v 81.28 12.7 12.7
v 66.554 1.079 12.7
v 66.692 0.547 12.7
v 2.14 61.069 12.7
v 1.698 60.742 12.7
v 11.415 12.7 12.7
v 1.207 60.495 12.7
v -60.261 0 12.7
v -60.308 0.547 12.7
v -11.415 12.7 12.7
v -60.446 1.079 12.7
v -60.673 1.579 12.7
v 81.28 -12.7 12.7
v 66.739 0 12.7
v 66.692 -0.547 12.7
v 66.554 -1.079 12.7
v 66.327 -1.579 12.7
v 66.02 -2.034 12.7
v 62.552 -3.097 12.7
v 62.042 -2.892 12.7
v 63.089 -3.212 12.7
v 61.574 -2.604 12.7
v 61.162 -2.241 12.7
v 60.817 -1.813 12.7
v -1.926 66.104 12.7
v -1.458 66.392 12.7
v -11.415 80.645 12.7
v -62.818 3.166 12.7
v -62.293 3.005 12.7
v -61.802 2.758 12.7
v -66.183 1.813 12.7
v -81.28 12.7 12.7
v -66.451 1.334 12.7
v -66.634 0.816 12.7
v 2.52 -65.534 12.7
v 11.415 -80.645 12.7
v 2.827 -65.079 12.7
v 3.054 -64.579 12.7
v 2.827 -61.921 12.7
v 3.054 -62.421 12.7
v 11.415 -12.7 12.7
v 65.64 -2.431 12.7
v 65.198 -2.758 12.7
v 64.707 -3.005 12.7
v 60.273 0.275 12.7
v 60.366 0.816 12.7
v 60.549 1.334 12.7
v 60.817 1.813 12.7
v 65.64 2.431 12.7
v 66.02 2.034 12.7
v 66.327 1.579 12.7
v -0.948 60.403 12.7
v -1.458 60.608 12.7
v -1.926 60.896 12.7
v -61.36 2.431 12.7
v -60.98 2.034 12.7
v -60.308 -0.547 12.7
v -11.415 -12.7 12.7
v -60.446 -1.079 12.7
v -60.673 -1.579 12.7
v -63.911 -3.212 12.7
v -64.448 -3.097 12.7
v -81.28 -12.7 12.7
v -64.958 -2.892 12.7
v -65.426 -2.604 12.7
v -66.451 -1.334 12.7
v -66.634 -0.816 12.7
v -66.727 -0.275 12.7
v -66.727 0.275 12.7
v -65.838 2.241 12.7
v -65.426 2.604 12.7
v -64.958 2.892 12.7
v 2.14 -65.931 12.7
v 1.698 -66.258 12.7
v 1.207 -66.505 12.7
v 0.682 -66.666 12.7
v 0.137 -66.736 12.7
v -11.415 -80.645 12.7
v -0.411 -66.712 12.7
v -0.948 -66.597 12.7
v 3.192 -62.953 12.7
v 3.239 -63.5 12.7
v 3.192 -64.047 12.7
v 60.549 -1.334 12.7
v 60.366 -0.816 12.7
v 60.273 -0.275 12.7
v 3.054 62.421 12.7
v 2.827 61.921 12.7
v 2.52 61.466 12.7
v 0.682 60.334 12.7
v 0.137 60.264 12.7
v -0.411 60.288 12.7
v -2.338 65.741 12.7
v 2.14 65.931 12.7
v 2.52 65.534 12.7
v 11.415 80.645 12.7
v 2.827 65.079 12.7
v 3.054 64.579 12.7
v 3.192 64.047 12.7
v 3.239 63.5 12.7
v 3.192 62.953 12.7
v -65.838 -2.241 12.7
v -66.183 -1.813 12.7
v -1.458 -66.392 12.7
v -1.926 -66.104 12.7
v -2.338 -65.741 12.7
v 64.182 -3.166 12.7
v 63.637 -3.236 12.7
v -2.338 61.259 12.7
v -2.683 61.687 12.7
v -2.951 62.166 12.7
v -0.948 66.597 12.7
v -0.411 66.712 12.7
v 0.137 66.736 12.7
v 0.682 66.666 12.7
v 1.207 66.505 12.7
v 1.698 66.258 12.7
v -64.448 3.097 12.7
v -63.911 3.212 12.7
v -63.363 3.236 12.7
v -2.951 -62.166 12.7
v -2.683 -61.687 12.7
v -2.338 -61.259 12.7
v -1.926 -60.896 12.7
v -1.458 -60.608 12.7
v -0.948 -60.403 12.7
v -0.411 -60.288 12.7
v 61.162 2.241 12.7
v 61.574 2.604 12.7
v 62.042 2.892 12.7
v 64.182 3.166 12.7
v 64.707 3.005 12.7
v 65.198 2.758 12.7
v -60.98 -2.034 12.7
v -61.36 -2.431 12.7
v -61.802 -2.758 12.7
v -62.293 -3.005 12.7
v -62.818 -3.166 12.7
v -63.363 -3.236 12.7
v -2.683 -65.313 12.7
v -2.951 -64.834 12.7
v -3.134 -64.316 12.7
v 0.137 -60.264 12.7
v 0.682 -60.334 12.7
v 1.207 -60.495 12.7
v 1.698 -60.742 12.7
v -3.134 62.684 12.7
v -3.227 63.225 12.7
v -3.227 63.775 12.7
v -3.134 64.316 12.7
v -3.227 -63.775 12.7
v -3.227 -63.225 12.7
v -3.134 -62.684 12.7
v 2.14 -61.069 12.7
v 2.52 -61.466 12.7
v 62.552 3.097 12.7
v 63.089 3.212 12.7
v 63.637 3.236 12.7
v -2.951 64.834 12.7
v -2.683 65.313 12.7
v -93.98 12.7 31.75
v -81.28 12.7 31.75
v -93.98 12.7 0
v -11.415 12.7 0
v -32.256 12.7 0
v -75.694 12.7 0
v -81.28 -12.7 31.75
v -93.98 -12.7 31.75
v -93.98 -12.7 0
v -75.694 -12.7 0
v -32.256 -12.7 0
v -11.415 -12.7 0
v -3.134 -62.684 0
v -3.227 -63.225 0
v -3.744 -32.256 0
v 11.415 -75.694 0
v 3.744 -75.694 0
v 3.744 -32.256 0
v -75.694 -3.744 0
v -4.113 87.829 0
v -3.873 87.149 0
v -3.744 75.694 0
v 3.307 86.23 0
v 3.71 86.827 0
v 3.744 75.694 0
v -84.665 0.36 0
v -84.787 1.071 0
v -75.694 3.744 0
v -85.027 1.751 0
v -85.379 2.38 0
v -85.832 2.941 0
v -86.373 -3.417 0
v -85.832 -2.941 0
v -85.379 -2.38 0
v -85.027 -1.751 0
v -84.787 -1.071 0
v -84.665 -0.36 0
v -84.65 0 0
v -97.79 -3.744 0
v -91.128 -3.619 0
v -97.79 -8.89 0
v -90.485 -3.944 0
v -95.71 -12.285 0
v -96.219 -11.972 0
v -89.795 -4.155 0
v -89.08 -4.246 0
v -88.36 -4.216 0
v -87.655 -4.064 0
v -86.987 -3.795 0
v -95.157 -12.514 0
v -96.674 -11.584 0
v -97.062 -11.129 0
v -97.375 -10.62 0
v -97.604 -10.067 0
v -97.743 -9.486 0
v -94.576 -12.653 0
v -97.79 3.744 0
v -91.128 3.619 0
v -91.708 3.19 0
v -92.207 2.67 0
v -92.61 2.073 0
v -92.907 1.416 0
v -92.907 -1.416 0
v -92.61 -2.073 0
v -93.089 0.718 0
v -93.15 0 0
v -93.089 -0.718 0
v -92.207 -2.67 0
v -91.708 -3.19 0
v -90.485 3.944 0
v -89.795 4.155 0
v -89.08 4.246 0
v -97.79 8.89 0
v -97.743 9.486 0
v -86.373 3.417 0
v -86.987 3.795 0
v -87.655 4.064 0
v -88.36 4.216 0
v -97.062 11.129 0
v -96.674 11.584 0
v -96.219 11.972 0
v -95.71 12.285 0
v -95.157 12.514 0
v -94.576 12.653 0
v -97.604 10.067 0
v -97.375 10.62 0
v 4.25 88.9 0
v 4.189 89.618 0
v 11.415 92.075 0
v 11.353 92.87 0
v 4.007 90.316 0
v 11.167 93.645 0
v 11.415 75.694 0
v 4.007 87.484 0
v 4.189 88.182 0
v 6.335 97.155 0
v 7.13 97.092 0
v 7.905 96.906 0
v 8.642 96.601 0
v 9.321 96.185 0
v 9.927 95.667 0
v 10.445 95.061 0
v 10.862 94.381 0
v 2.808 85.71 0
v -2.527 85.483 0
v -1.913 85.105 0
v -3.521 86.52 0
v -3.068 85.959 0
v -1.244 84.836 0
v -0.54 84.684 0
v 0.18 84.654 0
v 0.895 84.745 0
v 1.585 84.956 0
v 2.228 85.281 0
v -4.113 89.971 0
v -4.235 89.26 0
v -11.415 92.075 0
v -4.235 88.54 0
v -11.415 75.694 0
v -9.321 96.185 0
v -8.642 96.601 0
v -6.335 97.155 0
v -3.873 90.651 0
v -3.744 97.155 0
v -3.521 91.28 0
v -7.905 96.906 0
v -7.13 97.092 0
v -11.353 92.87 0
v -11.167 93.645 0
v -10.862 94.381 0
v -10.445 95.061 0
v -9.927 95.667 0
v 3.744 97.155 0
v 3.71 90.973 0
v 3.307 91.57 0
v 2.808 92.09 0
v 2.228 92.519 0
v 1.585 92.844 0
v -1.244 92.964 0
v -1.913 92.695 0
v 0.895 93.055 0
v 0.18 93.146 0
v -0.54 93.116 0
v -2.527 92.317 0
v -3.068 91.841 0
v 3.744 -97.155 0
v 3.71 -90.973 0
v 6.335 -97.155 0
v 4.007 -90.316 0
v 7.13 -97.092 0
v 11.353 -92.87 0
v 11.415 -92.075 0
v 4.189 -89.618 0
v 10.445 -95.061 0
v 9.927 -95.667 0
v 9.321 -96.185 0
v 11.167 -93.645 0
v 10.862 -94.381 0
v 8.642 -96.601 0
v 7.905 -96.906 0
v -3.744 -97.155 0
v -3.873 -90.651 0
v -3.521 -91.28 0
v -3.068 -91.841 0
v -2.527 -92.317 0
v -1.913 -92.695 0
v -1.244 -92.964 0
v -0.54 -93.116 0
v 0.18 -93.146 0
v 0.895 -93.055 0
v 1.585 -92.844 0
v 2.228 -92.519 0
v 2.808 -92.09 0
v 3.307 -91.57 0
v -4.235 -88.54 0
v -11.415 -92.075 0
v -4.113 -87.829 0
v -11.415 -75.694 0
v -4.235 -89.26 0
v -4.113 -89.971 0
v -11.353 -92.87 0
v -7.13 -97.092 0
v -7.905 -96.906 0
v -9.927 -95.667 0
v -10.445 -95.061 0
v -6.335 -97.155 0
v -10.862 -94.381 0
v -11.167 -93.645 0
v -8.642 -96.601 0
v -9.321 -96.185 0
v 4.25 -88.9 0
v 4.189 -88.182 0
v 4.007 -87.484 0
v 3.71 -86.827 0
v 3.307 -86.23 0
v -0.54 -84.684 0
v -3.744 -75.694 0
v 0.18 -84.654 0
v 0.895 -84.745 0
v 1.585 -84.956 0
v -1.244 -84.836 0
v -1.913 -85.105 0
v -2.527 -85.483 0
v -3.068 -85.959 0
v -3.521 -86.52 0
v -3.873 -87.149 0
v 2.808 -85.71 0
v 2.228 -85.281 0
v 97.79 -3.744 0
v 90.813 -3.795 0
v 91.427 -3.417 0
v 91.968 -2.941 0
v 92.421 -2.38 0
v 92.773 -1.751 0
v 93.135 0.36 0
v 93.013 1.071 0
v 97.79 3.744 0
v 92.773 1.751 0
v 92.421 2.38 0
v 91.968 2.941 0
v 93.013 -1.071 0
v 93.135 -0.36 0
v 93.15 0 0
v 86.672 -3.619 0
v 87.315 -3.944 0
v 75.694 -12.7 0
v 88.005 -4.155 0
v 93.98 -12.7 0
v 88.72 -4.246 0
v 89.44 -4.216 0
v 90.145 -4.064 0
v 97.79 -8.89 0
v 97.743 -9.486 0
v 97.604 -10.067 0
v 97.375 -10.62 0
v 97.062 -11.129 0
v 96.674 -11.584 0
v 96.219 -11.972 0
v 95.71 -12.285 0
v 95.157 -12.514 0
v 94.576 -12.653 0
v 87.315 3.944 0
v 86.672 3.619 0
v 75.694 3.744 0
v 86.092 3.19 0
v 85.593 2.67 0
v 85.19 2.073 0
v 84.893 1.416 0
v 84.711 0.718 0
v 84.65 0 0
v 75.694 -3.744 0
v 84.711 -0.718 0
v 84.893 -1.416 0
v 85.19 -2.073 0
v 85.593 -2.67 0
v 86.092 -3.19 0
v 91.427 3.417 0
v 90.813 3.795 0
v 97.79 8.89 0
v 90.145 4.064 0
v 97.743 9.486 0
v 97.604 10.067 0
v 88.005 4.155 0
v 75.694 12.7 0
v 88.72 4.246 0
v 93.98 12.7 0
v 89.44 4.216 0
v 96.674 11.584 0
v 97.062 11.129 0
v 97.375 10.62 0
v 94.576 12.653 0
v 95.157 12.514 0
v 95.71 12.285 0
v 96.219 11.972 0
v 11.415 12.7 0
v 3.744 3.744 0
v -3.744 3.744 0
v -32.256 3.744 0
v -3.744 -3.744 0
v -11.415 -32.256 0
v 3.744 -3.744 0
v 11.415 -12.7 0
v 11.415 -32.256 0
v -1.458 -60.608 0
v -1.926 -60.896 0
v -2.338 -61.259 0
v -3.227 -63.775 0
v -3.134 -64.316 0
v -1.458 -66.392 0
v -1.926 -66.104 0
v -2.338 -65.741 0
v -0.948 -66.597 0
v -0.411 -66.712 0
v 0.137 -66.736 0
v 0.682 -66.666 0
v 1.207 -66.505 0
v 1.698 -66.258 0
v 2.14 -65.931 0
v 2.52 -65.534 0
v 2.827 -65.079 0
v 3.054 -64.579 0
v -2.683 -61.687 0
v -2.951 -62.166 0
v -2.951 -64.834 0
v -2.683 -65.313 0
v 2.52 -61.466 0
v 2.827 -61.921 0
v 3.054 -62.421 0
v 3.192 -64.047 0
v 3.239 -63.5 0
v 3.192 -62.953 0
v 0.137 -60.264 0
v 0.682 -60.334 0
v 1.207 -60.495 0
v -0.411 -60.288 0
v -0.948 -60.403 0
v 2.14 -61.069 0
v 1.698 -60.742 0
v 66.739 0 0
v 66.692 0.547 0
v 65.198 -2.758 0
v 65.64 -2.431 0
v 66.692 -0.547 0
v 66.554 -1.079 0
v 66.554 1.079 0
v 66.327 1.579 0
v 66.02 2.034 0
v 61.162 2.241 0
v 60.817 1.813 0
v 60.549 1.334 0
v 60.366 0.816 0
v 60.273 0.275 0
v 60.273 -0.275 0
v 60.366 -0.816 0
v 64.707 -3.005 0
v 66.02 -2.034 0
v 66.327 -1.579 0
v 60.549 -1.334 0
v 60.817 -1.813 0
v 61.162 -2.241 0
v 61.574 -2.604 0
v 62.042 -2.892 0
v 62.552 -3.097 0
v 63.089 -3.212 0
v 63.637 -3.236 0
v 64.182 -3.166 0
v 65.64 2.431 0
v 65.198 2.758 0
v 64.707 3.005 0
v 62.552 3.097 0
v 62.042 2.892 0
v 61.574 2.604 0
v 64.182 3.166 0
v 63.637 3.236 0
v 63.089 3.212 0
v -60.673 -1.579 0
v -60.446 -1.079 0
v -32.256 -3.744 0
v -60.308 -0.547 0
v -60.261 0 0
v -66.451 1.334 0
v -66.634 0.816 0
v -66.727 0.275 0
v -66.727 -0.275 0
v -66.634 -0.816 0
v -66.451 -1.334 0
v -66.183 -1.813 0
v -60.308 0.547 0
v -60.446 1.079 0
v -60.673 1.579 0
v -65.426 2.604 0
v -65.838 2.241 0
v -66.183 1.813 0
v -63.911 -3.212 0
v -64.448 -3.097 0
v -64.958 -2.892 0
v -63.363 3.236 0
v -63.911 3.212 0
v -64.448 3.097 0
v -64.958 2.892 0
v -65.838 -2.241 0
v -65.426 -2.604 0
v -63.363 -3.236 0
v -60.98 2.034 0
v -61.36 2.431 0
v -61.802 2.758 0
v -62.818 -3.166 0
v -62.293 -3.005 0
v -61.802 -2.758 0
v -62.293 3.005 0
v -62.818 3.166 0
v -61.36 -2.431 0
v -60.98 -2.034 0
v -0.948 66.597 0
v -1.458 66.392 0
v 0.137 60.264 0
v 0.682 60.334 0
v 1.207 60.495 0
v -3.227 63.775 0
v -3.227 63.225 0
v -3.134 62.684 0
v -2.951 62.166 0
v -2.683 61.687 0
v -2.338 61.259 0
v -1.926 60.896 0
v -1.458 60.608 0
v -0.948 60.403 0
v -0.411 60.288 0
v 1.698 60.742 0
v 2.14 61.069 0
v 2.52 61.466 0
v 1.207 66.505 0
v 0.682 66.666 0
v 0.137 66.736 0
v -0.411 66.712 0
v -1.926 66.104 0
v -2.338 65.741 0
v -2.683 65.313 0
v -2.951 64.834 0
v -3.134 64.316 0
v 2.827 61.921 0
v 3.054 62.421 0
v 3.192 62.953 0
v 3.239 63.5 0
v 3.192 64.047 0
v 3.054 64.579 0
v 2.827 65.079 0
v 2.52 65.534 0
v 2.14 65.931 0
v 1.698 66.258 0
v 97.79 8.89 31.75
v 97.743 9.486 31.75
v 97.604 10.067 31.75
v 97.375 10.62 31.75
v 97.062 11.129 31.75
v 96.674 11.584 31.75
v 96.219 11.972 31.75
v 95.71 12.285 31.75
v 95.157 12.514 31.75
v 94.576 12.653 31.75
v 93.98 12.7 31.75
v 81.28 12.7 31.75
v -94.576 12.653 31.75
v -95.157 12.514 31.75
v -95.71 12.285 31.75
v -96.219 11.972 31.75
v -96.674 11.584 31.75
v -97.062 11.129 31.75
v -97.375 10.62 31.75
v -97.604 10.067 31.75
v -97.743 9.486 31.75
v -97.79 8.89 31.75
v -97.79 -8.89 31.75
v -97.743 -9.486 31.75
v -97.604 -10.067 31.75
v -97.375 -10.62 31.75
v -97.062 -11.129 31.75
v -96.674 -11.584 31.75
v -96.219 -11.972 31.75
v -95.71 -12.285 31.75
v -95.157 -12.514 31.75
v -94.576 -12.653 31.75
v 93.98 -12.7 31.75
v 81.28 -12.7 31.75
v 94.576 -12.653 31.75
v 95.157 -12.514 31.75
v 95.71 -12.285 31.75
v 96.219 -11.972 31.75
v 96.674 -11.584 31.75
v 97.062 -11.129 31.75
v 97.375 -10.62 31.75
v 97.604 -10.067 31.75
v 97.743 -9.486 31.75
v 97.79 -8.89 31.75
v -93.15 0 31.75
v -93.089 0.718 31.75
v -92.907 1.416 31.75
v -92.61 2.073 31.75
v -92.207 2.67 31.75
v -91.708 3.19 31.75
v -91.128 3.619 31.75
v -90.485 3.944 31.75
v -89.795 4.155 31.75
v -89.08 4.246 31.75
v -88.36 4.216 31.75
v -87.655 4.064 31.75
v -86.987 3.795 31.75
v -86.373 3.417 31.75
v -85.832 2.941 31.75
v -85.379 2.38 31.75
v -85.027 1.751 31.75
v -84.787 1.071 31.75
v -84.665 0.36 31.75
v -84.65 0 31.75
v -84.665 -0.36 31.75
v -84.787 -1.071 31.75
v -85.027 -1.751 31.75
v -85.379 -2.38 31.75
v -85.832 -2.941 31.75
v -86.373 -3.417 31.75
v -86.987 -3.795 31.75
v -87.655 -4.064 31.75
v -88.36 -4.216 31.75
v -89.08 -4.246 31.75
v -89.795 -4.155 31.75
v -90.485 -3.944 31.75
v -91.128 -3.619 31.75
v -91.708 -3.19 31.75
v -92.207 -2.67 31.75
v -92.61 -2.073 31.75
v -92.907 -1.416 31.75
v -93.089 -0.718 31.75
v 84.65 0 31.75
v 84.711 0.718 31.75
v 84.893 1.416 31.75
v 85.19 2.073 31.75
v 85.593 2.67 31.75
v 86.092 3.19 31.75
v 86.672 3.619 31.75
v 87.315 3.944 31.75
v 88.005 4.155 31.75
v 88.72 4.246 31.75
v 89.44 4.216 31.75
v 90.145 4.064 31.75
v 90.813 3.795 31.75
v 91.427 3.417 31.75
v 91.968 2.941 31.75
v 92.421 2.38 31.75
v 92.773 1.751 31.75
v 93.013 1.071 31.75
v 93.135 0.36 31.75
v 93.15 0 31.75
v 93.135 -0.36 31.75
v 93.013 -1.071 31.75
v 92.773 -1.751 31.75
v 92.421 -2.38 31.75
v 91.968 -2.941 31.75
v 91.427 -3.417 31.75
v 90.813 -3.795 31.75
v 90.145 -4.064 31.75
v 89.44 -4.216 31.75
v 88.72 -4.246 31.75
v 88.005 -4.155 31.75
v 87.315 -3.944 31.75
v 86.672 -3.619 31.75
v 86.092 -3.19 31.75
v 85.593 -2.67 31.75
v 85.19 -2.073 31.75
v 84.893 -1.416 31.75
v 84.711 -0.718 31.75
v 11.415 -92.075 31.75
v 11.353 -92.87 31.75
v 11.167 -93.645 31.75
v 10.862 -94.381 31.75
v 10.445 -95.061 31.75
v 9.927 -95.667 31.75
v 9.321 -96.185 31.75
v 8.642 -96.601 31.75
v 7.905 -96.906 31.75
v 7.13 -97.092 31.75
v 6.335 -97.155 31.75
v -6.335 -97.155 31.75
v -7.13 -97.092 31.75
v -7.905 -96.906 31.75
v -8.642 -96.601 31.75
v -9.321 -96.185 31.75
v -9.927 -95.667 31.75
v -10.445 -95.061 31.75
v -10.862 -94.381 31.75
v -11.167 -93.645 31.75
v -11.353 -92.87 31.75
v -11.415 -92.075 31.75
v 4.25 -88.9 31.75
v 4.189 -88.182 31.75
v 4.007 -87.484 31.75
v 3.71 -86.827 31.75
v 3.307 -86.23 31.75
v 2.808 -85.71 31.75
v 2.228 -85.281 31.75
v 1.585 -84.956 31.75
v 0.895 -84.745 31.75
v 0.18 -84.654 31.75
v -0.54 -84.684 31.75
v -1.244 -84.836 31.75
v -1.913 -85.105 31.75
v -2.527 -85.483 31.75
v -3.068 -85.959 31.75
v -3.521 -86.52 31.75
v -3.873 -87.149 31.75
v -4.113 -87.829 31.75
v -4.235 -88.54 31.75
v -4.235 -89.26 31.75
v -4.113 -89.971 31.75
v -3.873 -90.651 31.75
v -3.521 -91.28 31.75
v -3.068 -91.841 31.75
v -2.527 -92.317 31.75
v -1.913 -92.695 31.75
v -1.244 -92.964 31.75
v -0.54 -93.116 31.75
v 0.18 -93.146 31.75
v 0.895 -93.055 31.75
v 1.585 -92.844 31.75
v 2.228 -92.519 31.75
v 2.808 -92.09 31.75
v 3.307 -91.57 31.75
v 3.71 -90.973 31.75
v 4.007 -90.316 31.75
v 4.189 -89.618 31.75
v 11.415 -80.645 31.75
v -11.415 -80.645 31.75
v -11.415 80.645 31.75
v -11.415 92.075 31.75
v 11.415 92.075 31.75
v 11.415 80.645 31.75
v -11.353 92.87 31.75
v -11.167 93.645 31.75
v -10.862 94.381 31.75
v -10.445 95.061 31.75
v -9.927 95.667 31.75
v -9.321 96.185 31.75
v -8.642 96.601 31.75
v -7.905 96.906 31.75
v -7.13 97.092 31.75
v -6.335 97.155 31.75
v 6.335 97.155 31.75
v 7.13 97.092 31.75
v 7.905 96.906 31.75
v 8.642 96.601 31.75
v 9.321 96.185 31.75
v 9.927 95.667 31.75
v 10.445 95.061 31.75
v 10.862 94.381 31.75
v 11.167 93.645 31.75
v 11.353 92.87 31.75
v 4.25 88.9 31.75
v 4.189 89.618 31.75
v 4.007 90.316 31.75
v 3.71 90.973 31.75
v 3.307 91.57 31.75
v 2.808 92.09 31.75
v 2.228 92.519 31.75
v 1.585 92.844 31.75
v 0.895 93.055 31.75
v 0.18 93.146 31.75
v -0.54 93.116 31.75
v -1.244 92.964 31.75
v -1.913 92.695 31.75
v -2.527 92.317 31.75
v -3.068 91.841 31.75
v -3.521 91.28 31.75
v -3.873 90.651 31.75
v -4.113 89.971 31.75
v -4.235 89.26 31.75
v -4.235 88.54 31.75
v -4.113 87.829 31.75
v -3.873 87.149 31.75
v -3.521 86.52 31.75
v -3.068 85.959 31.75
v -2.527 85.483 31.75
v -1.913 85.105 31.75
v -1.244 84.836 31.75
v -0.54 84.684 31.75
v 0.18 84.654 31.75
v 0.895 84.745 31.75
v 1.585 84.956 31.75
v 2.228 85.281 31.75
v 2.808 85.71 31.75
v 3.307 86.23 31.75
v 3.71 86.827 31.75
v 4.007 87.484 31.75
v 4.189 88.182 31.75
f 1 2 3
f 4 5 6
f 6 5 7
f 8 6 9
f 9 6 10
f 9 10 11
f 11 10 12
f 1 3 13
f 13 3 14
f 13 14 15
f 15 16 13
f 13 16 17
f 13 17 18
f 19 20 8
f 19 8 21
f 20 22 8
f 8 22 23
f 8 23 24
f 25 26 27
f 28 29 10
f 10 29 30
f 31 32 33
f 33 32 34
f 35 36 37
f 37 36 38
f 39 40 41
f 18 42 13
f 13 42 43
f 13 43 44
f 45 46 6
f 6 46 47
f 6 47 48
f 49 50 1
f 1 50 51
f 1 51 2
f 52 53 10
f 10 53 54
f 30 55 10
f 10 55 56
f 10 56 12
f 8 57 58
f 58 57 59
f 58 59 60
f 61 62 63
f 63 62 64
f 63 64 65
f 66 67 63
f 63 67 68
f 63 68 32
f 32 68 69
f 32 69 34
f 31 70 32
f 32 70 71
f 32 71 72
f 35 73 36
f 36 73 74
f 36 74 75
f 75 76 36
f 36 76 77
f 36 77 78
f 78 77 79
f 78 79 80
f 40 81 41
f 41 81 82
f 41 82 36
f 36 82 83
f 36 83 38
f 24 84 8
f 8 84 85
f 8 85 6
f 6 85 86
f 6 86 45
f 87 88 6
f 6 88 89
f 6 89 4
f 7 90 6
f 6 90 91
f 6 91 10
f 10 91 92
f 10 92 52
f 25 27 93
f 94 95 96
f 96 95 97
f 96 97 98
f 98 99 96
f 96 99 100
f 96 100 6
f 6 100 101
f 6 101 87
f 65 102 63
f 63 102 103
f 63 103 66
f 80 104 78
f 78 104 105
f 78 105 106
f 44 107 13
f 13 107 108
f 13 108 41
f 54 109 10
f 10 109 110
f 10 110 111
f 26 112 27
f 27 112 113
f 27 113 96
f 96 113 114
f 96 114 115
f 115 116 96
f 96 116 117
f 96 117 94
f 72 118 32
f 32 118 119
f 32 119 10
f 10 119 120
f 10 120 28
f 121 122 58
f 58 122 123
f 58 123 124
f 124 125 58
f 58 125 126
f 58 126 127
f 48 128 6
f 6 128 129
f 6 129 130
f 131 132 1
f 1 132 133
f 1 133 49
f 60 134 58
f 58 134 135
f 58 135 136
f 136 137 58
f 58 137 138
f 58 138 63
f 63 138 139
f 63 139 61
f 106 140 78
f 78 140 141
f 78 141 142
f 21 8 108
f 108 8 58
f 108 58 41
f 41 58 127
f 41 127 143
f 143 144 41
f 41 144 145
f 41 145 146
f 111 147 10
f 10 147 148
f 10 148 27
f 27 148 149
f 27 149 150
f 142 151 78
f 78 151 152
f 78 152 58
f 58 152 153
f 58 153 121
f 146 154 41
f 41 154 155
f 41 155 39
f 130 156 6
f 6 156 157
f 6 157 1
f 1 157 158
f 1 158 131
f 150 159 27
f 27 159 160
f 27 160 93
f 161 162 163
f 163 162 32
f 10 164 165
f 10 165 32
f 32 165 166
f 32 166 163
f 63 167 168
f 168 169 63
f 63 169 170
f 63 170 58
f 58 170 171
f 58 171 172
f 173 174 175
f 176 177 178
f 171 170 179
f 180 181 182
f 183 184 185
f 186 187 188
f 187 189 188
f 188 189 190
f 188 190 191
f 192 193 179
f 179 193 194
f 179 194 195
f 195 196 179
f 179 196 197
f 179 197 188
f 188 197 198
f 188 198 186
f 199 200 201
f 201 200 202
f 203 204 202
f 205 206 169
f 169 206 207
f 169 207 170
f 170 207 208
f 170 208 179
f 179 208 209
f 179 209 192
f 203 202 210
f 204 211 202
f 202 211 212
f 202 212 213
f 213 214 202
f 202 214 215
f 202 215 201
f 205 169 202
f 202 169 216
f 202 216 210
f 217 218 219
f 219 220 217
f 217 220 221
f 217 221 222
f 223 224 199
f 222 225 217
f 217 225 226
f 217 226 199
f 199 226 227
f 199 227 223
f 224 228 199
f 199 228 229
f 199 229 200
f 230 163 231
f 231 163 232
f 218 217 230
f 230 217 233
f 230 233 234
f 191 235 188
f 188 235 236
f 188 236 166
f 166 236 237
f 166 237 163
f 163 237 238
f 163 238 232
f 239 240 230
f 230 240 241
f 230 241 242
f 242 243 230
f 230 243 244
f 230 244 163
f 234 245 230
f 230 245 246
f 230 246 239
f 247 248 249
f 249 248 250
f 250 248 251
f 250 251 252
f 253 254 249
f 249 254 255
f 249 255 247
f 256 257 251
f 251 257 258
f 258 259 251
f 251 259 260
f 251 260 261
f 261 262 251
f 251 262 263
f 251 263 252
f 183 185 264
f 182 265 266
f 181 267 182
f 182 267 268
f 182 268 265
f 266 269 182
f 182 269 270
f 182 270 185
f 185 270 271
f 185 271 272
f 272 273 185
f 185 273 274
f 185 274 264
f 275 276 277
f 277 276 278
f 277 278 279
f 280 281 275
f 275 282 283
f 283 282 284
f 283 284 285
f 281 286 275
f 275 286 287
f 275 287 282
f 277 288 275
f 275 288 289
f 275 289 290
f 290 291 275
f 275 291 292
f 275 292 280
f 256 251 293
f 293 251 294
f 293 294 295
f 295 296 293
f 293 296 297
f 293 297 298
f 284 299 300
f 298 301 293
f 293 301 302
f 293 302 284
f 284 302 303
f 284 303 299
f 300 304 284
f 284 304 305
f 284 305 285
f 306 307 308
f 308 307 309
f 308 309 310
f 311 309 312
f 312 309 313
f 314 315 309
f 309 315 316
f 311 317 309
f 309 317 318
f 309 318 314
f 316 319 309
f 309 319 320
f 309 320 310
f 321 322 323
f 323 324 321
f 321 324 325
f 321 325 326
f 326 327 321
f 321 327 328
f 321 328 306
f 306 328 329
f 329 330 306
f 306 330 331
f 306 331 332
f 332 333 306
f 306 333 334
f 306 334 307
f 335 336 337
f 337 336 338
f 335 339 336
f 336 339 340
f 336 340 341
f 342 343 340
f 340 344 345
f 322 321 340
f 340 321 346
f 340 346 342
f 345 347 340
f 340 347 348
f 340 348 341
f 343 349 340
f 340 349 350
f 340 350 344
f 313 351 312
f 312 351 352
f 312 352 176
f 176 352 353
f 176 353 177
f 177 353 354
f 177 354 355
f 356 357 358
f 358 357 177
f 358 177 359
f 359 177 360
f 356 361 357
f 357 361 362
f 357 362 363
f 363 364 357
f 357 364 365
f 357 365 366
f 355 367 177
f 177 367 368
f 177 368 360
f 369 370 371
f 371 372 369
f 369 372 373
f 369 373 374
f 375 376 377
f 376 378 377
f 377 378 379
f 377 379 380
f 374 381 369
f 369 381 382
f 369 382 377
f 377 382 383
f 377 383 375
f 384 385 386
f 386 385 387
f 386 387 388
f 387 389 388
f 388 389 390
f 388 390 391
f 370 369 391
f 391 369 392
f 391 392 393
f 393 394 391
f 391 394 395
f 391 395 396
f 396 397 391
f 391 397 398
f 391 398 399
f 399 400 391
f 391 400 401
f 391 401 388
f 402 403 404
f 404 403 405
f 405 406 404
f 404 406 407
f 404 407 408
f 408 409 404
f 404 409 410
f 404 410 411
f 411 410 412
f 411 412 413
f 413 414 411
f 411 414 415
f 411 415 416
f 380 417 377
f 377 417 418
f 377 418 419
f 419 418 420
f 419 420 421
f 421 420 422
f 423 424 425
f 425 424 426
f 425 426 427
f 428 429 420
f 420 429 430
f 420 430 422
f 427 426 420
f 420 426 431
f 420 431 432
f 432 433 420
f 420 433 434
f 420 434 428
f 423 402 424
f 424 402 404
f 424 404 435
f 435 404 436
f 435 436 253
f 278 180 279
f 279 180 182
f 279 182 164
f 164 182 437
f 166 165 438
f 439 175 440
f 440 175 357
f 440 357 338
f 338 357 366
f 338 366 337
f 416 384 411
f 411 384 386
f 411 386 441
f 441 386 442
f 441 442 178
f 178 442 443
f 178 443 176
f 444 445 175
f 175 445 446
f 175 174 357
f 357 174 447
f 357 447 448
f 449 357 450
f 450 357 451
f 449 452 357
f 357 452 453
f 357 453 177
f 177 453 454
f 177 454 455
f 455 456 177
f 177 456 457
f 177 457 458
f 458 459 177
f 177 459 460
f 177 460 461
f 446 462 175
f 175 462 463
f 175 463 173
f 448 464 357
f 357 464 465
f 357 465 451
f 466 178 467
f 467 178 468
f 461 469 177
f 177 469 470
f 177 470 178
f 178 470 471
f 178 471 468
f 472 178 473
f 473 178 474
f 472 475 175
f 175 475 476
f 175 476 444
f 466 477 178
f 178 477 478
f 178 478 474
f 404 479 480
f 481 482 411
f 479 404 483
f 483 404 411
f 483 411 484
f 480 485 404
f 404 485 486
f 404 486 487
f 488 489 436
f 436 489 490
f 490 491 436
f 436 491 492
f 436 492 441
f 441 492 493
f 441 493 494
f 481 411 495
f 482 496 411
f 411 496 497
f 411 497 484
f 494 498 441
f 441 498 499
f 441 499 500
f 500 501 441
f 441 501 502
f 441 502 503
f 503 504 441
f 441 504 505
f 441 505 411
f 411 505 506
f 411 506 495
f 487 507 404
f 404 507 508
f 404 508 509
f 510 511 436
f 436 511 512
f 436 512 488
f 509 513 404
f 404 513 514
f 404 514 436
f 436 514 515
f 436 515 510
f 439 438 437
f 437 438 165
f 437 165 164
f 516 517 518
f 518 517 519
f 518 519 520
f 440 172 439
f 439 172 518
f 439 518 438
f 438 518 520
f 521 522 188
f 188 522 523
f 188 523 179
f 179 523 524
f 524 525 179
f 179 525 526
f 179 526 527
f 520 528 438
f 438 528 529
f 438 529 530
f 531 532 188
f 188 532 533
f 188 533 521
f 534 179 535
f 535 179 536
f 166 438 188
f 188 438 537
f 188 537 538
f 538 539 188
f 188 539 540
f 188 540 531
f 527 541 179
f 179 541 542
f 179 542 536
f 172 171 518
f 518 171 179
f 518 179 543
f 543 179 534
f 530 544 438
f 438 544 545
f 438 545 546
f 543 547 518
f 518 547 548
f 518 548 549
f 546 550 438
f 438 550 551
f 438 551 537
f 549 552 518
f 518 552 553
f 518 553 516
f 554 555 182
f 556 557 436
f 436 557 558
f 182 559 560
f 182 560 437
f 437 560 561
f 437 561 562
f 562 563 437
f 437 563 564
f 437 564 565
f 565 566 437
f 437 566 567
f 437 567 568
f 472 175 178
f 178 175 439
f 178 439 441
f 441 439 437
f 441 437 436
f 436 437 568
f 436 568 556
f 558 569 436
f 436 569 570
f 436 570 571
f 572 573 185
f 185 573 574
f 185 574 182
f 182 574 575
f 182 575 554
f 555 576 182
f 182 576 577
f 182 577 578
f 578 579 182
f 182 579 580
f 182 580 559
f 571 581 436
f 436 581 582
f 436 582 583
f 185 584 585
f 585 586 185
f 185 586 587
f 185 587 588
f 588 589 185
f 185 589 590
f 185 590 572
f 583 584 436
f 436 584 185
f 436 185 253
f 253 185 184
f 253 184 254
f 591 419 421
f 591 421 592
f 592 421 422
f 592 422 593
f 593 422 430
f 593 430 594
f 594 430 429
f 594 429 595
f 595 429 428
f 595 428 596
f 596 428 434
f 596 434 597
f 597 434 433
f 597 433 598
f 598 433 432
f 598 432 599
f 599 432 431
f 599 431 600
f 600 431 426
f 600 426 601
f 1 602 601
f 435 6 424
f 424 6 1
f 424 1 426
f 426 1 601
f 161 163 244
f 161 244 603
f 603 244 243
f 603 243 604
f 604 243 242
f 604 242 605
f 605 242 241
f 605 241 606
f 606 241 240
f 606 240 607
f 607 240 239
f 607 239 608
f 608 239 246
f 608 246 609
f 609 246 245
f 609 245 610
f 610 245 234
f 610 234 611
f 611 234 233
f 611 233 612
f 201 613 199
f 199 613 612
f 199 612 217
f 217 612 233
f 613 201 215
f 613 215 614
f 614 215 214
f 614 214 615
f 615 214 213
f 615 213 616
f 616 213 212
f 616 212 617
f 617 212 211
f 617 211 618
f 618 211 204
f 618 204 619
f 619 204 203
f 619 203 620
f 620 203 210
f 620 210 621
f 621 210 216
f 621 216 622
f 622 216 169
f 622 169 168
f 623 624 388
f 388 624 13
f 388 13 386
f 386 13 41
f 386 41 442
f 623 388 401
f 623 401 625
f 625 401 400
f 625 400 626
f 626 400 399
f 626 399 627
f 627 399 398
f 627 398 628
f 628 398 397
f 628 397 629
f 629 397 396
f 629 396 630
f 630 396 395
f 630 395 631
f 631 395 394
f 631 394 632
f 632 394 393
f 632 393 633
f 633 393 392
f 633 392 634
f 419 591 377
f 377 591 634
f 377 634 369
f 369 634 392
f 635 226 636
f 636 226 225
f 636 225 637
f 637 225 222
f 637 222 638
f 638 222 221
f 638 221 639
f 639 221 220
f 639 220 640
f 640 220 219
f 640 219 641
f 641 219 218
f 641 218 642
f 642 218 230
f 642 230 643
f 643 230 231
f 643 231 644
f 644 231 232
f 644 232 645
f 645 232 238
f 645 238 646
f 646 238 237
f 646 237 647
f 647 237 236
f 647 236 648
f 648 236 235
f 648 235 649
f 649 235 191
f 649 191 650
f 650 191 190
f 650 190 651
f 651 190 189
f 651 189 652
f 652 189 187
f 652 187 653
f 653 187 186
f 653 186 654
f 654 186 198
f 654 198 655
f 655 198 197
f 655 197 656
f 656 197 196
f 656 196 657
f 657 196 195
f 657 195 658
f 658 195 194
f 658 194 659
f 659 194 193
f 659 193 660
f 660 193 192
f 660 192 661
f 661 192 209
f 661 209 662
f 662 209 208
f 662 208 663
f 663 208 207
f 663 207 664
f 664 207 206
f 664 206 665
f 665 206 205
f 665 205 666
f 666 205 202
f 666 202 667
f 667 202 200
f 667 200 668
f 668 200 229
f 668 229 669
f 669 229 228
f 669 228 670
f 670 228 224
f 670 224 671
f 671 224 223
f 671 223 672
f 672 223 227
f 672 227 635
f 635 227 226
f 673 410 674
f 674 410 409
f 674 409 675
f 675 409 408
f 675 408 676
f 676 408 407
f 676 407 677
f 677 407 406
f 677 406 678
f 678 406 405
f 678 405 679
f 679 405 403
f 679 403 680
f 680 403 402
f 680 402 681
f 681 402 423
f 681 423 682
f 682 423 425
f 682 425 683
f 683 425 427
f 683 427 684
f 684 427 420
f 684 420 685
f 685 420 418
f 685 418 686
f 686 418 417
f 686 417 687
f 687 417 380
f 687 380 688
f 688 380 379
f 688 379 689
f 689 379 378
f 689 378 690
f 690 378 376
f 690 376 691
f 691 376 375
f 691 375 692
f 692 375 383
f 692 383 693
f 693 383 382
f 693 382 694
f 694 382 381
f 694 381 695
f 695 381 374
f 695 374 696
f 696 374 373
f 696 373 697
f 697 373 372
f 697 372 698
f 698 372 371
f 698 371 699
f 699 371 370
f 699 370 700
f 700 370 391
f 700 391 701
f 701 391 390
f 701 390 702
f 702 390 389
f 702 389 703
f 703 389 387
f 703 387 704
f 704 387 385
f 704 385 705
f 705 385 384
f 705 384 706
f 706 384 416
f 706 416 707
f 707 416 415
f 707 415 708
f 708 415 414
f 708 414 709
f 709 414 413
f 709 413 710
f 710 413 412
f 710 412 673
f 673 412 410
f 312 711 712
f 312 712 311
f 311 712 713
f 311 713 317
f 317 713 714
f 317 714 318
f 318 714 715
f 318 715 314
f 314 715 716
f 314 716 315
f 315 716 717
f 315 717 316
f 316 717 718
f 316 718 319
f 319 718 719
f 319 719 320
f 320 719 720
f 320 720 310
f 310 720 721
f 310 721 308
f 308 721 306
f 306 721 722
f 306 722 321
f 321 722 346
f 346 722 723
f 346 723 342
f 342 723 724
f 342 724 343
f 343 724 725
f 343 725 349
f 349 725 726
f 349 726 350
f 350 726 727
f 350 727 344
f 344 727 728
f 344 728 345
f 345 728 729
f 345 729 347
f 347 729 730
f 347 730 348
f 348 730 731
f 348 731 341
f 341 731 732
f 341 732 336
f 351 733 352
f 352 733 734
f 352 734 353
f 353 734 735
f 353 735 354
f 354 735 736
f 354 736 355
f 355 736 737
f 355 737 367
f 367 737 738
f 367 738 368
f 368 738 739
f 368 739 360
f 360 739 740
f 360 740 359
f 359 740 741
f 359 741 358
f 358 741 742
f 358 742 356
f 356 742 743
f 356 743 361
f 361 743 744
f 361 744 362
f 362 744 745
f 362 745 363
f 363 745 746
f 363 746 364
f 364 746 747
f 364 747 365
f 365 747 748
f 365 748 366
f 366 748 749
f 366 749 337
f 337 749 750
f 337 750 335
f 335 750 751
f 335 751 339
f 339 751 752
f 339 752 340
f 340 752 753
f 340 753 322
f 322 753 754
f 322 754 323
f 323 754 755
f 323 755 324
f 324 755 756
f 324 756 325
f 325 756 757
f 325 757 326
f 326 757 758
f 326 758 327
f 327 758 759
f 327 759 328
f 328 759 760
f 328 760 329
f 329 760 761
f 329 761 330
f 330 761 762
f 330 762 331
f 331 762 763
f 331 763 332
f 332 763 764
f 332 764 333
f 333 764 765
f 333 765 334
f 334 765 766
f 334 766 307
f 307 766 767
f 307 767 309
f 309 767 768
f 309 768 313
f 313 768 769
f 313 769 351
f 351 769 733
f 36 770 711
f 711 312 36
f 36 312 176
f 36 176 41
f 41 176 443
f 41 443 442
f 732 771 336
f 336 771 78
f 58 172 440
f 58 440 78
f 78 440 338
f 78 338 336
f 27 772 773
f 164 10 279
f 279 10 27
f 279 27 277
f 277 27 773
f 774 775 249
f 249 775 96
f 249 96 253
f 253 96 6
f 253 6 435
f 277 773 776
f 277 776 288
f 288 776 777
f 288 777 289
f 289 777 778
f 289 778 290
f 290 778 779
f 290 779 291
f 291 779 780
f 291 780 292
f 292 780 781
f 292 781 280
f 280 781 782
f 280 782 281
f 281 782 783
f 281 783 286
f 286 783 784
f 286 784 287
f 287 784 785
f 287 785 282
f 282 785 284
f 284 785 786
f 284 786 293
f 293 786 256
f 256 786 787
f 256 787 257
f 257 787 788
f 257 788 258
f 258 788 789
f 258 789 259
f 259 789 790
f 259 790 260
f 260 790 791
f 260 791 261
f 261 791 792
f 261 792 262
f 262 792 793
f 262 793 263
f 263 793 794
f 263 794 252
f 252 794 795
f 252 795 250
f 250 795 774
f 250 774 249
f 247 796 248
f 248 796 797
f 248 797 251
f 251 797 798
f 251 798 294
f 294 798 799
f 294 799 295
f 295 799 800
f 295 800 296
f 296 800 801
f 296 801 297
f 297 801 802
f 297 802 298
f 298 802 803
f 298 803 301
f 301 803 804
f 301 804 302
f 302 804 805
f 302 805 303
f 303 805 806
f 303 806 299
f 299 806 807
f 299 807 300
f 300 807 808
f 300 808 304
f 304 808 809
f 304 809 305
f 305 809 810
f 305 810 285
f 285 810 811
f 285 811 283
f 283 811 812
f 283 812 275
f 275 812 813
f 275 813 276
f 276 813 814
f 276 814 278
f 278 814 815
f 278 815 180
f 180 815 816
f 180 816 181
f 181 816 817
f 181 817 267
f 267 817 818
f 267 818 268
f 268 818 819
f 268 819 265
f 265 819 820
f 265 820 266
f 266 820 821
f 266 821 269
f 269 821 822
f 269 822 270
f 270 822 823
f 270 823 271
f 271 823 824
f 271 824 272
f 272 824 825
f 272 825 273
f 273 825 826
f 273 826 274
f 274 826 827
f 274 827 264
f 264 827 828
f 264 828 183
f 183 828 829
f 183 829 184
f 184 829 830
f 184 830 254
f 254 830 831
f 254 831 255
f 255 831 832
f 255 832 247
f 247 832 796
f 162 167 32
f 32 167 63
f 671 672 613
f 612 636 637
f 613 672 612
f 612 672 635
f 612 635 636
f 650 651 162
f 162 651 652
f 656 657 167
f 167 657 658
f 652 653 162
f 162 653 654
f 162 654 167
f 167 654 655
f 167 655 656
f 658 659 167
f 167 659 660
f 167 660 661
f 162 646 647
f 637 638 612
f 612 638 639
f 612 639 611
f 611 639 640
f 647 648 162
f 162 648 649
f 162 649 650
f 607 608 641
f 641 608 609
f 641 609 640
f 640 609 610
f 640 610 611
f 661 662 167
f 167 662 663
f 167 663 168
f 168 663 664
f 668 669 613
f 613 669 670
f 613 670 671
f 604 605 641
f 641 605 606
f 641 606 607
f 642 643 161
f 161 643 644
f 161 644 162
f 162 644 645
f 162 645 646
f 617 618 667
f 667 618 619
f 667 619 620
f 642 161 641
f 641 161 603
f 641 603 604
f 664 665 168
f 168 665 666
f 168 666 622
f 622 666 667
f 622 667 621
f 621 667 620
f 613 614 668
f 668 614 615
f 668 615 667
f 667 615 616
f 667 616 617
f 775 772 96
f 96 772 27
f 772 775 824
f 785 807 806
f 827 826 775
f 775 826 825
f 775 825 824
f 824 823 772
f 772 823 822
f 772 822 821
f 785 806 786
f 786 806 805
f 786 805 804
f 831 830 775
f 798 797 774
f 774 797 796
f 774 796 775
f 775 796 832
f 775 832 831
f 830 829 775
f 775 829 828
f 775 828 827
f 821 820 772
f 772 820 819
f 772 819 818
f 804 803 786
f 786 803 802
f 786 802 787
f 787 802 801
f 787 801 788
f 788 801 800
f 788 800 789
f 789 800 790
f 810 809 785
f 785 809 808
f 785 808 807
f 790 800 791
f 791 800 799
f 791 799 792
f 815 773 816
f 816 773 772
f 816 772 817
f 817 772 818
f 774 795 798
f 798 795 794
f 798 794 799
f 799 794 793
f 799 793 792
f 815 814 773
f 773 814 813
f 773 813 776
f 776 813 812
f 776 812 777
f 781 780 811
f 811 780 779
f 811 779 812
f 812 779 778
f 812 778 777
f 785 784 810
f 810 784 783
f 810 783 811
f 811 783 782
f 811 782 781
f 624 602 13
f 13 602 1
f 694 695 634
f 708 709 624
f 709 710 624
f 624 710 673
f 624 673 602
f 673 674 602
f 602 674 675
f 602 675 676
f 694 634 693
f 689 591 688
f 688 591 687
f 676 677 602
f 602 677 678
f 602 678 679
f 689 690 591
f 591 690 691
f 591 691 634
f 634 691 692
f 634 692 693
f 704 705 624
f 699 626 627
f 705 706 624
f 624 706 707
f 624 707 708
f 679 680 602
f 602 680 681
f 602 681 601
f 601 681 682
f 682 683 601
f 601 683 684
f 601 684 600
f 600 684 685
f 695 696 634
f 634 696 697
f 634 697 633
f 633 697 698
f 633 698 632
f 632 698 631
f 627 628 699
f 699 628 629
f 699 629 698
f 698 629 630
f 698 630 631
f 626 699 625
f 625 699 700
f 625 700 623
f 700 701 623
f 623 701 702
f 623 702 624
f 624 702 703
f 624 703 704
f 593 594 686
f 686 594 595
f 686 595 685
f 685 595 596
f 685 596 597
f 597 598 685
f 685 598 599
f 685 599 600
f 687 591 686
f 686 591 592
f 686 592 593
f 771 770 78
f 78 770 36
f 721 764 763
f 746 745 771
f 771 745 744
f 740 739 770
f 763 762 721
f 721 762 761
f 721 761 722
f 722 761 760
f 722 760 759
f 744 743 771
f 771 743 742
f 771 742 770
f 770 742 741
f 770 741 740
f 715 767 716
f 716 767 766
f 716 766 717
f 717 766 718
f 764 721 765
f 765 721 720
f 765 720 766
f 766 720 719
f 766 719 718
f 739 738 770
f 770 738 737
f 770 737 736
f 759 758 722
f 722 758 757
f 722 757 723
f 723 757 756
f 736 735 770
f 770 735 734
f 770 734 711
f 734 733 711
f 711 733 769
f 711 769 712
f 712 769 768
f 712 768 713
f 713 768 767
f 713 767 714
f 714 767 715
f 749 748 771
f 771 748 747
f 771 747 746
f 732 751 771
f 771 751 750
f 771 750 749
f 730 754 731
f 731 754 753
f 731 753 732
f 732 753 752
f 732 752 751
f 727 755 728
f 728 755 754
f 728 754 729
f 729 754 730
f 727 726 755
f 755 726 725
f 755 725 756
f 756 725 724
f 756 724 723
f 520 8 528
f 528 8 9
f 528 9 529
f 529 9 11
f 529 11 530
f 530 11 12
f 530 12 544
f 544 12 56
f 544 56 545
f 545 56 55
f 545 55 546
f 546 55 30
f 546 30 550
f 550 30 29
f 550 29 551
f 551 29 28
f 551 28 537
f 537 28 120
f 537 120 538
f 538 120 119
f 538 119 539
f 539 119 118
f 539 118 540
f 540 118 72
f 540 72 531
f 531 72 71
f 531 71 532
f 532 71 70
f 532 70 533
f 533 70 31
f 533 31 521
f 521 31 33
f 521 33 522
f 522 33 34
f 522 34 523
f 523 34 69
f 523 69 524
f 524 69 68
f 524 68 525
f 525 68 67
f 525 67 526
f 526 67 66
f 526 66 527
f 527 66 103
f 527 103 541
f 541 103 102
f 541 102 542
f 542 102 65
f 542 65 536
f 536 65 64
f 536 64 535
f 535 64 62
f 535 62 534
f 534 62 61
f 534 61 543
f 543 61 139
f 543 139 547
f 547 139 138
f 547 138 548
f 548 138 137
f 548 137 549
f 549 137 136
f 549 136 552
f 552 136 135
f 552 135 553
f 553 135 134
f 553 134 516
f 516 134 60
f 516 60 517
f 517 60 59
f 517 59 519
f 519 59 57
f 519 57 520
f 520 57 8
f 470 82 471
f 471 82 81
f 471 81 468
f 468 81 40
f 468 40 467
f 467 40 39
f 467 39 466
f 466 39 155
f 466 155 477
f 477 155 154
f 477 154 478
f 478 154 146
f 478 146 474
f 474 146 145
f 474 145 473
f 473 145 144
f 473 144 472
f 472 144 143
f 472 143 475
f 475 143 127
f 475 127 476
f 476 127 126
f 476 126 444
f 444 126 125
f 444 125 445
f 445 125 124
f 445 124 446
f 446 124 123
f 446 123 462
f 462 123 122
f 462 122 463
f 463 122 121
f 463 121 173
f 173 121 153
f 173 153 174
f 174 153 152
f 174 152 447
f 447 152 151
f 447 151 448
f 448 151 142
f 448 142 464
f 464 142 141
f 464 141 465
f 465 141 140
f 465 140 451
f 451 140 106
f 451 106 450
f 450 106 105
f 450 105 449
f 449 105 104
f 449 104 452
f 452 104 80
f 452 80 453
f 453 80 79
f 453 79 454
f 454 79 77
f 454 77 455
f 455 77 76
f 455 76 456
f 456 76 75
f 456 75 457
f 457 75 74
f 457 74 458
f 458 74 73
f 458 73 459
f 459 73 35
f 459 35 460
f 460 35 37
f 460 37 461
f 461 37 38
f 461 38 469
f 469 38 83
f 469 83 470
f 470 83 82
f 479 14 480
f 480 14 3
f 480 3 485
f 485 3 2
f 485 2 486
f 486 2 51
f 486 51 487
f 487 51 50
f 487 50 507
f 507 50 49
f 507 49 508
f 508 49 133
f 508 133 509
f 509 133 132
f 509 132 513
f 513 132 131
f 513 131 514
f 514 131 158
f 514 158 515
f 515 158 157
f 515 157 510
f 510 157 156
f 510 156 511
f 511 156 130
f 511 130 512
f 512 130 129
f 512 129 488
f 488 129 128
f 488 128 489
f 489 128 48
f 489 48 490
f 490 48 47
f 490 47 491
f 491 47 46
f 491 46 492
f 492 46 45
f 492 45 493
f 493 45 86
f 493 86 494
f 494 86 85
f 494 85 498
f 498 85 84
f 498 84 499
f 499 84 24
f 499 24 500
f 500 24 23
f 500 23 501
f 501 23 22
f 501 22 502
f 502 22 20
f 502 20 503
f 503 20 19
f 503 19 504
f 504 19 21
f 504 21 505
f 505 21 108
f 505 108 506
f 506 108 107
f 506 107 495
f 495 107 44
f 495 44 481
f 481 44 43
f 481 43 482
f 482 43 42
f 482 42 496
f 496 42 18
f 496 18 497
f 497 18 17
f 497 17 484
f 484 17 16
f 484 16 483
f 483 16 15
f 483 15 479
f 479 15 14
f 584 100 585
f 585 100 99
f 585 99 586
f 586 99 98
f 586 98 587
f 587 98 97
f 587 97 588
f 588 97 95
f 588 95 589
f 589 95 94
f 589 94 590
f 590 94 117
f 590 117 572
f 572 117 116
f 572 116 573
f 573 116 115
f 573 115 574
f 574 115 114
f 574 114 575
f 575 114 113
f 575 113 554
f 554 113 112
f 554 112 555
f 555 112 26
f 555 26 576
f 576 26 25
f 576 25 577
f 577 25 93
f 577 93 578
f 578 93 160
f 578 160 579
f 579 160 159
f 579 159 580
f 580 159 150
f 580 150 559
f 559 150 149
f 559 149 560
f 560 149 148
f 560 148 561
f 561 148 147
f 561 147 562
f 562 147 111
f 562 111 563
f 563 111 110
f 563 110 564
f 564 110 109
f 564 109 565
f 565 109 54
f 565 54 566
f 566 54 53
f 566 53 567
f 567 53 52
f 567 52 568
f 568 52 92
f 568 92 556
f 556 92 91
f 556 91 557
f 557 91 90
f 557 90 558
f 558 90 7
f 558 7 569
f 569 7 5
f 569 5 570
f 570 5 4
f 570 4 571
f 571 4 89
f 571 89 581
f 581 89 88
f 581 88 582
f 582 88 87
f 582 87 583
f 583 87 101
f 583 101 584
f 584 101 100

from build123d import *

# Parameters (mm, degrees)
SKETCH1_R           = 4.25
BOSS_EXTRUDE1_DEPTH = 12.7
SKETCH3_R           = 4.25
BOSS_EXTRUDE3_DEPTH = 12.7
SKETCH4_R           = 4.25
BOSS_EXTRUDE4_DEPTH = 19.05
SKETCH5_R           = 3.2385
CUT_EXTRUDE1_DEPTH  = 140.157754455


with BuildPart() as part:
    # Sketch1 → Boss-Extrude1 (new body)
    with BuildSketch(Plane.XY):
        with BuildLine():
            Line((93.98, -12.7), (-93.98, -12.7))
            ThreePointArc((-93.98, -12.7), (-96.674076836, -11.584076836), (-97.79, -8.89))
            Line((-97.79, -8.89), (-97.79, 8.89))
            ThreePointArc((-97.79, 8.89), (-96.674076836, 11.584076836), (-93.98, 12.7))
            Line((-93.98, 12.7), (93.98, 12.7))
            ThreePointArc((93.98, 12.7), (96.674076836, 11.584076836), (97.79, 8.89))
            Line((97.79, 8.89), (97.79, -8.89))
            ThreePointArc((97.79, -8.89), (96.674076836, -11.584076836), (93.98, -12.7))
        make_face()
        with Locations((-88.9, 0)):
            Circle(SKETCH1_R, mode=Mode.SUBTRACT)
        with Locations((88.9, 0)):
            Circle(SKETCH1_R, mode=Mode.SUBTRACT)
    extrude(amount=BOSS_EXTRUDE1_DEPTH)

    # Sketch3 → Boss-Extrude3 (add, through all)
    with BuildSketch(Plane.XY.offset(12.7)):
        with BuildLine():
            Line((-6.335384206, -97.155), (6.335384206, -97.155))
            ThreePointArc((6.335384206, -97.155), (9.927486654, -95.667102448), (11.415384206, -92.075))
            Line((11.415384206, -92.075), (11.415384206, 92.075))
            ThreePointArc((11.415384206, 92.075), (9.927486654, 95.667102448), (6.335384206, 97.155))
            Line((6.335384206, 97.155), (-6.335384206, 97.155))
            ThreePointArc((-6.335384206, 97.155), (-9.927486654, 95.667102448), (-11.415384206, 92.075))
            Line((-11.415384206, 92.075), (-11.415384206, -92.075))
            ThreePointArc((-11.415384206, -92.075), (-9.927486654, -95.667102448), (-6.335384206, -97.155))
        make_face()
        with Locations((0, 88.9)):
            Circle(SKETCH3_R, mode=Mode.SUBTRACT)
        with Locations((0, -88.9)):
            Circle(SKETCH3_R, mode=Mode.SUBTRACT)
    extrude(amount=-BOSS_EXTRUDE3_DEPTH)

    # Sketch4 → Boss-Extrude4 (add)
    # profile 1 of 4: a face of its own
    with BuildSketch(Plane.XY.offset(12.7)):
        with BuildLine():
            Line((-81.28, 12.7), (-93.98, 12.7))
            ThreePointArc((-93.98, 12.7), (-96.674076836, 11.584076836), (-97.79, 8.89))
            Line((-97.79, 8.89), (-97.79, -8.89))
            ThreePointArc((-97.79, -8.89), (-96.674076836, -11.584076836), (-93.98, -12.7))
            Line((-93.98, -12.7), (-81.28, -12.7))
            Line((-81.28, -12.7), (-81.28, 12.7))
        make_face()
        with Locations((-88.9, 0)):
            Circle(SKETCH4_R, mode=Mode.SUBTRACT)
    # profile 2 of 4: a face of its own
    with BuildSketch(Plane.XY.offset(12.7)):
        with BuildLine():
            Line((-11.415384206, 92.075), (-11.415384206, 80.645))
            Line((-11.415384206, 80.645), (11.415384206, 80.645))
            Line((11.415384206, 80.645), (11.415384206, 92.075))
            ThreePointArc((11.415384206, 92.075), (9.927486654, 95.667102448), (6.335384206, 97.155))
            Line((6.335384206, 97.155), (-6.335384206, 97.155))
            ThreePointArc((-6.335384206, 97.155), (-9.927486654, 95.667102448), (-11.415384206, 92.075))
        make_face()
        with Locations((0, 88.9)):
            Circle(SKETCH4_R, mode=Mode.SUBTRACT)
    # profile 3 of 4: a face of its own
    with BuildSketch(Plane.XY.offset(12.7)):
        with BuildLine():
            Line((93.98, 12.7), (81.28, 12.7))
            Line((81.28, 12.7), (81.28, -12.7))
            Line((81.28, -12.7), (93.98, -12.7))
            ThreePointArc((93.98, -12.7), (96.674076836, -11.584076836), (97.79, -8.89))
            Line((97.79, -8.89), (97.79, 8.89))
            ThreePointArc((97.79, 8.89), (96.674076836, 11.584076836), (93.98, 12.7))
        make_face()
        with Locations((88.9, 0)):
            Circle(SKETCH4_R, mode=Mode.SUBTRACT)
    # profile 4 of 4: a face of its own
    with BuildSketch(Plane.XY.offset(12.7)):
        with BuildLine():
            Line((11.415384206, -80.645), (-11.415384206, -80.645))
            Line((-11.415384206, -80.645), (-11.415384206, -92.075))
            ThreePointArc((-11.415384206, -92.075), (-9.927486654, -95.667102448), (-6.335384206, -97.155))
            Line((-6.335384206, -97.155), (6.335384206, -97.155))
            ThreePointArc((6.335384206, -97.155), (9.927486654, -95.667102448), (11.415384206, -92.075))
            Line((11.415384206, -92.075), (11.415384206, -80.645))
        make_face()
        with Locations((0, -88.9)):
            Circle(SKETCH4_R, mode=Mode.SUBTRACT)
    extrude(amount=BOSS_EXTRUDE4_DEPTH)

    # Sketch5 → Cut-Extrude1 (cut, through all)
    with BuildSketch(Plane.XY.offset(12.7)):
        with Locations((0, 63.5)):
            Circle(SKETCH5_R)
        with Locations((63.5, 0)):
            Circle(SKETCH5_R)
        with Locations((0, -63.5)):
            Circle(SKETCH5_R)
        with Locations((-63.5, 0)):
            Circle(SKETCH5_R)
    extrude(amount=-CUT_EXTRUDE1_DEPTH, mode=Mode.SUBTRACT)


solid = part.part
